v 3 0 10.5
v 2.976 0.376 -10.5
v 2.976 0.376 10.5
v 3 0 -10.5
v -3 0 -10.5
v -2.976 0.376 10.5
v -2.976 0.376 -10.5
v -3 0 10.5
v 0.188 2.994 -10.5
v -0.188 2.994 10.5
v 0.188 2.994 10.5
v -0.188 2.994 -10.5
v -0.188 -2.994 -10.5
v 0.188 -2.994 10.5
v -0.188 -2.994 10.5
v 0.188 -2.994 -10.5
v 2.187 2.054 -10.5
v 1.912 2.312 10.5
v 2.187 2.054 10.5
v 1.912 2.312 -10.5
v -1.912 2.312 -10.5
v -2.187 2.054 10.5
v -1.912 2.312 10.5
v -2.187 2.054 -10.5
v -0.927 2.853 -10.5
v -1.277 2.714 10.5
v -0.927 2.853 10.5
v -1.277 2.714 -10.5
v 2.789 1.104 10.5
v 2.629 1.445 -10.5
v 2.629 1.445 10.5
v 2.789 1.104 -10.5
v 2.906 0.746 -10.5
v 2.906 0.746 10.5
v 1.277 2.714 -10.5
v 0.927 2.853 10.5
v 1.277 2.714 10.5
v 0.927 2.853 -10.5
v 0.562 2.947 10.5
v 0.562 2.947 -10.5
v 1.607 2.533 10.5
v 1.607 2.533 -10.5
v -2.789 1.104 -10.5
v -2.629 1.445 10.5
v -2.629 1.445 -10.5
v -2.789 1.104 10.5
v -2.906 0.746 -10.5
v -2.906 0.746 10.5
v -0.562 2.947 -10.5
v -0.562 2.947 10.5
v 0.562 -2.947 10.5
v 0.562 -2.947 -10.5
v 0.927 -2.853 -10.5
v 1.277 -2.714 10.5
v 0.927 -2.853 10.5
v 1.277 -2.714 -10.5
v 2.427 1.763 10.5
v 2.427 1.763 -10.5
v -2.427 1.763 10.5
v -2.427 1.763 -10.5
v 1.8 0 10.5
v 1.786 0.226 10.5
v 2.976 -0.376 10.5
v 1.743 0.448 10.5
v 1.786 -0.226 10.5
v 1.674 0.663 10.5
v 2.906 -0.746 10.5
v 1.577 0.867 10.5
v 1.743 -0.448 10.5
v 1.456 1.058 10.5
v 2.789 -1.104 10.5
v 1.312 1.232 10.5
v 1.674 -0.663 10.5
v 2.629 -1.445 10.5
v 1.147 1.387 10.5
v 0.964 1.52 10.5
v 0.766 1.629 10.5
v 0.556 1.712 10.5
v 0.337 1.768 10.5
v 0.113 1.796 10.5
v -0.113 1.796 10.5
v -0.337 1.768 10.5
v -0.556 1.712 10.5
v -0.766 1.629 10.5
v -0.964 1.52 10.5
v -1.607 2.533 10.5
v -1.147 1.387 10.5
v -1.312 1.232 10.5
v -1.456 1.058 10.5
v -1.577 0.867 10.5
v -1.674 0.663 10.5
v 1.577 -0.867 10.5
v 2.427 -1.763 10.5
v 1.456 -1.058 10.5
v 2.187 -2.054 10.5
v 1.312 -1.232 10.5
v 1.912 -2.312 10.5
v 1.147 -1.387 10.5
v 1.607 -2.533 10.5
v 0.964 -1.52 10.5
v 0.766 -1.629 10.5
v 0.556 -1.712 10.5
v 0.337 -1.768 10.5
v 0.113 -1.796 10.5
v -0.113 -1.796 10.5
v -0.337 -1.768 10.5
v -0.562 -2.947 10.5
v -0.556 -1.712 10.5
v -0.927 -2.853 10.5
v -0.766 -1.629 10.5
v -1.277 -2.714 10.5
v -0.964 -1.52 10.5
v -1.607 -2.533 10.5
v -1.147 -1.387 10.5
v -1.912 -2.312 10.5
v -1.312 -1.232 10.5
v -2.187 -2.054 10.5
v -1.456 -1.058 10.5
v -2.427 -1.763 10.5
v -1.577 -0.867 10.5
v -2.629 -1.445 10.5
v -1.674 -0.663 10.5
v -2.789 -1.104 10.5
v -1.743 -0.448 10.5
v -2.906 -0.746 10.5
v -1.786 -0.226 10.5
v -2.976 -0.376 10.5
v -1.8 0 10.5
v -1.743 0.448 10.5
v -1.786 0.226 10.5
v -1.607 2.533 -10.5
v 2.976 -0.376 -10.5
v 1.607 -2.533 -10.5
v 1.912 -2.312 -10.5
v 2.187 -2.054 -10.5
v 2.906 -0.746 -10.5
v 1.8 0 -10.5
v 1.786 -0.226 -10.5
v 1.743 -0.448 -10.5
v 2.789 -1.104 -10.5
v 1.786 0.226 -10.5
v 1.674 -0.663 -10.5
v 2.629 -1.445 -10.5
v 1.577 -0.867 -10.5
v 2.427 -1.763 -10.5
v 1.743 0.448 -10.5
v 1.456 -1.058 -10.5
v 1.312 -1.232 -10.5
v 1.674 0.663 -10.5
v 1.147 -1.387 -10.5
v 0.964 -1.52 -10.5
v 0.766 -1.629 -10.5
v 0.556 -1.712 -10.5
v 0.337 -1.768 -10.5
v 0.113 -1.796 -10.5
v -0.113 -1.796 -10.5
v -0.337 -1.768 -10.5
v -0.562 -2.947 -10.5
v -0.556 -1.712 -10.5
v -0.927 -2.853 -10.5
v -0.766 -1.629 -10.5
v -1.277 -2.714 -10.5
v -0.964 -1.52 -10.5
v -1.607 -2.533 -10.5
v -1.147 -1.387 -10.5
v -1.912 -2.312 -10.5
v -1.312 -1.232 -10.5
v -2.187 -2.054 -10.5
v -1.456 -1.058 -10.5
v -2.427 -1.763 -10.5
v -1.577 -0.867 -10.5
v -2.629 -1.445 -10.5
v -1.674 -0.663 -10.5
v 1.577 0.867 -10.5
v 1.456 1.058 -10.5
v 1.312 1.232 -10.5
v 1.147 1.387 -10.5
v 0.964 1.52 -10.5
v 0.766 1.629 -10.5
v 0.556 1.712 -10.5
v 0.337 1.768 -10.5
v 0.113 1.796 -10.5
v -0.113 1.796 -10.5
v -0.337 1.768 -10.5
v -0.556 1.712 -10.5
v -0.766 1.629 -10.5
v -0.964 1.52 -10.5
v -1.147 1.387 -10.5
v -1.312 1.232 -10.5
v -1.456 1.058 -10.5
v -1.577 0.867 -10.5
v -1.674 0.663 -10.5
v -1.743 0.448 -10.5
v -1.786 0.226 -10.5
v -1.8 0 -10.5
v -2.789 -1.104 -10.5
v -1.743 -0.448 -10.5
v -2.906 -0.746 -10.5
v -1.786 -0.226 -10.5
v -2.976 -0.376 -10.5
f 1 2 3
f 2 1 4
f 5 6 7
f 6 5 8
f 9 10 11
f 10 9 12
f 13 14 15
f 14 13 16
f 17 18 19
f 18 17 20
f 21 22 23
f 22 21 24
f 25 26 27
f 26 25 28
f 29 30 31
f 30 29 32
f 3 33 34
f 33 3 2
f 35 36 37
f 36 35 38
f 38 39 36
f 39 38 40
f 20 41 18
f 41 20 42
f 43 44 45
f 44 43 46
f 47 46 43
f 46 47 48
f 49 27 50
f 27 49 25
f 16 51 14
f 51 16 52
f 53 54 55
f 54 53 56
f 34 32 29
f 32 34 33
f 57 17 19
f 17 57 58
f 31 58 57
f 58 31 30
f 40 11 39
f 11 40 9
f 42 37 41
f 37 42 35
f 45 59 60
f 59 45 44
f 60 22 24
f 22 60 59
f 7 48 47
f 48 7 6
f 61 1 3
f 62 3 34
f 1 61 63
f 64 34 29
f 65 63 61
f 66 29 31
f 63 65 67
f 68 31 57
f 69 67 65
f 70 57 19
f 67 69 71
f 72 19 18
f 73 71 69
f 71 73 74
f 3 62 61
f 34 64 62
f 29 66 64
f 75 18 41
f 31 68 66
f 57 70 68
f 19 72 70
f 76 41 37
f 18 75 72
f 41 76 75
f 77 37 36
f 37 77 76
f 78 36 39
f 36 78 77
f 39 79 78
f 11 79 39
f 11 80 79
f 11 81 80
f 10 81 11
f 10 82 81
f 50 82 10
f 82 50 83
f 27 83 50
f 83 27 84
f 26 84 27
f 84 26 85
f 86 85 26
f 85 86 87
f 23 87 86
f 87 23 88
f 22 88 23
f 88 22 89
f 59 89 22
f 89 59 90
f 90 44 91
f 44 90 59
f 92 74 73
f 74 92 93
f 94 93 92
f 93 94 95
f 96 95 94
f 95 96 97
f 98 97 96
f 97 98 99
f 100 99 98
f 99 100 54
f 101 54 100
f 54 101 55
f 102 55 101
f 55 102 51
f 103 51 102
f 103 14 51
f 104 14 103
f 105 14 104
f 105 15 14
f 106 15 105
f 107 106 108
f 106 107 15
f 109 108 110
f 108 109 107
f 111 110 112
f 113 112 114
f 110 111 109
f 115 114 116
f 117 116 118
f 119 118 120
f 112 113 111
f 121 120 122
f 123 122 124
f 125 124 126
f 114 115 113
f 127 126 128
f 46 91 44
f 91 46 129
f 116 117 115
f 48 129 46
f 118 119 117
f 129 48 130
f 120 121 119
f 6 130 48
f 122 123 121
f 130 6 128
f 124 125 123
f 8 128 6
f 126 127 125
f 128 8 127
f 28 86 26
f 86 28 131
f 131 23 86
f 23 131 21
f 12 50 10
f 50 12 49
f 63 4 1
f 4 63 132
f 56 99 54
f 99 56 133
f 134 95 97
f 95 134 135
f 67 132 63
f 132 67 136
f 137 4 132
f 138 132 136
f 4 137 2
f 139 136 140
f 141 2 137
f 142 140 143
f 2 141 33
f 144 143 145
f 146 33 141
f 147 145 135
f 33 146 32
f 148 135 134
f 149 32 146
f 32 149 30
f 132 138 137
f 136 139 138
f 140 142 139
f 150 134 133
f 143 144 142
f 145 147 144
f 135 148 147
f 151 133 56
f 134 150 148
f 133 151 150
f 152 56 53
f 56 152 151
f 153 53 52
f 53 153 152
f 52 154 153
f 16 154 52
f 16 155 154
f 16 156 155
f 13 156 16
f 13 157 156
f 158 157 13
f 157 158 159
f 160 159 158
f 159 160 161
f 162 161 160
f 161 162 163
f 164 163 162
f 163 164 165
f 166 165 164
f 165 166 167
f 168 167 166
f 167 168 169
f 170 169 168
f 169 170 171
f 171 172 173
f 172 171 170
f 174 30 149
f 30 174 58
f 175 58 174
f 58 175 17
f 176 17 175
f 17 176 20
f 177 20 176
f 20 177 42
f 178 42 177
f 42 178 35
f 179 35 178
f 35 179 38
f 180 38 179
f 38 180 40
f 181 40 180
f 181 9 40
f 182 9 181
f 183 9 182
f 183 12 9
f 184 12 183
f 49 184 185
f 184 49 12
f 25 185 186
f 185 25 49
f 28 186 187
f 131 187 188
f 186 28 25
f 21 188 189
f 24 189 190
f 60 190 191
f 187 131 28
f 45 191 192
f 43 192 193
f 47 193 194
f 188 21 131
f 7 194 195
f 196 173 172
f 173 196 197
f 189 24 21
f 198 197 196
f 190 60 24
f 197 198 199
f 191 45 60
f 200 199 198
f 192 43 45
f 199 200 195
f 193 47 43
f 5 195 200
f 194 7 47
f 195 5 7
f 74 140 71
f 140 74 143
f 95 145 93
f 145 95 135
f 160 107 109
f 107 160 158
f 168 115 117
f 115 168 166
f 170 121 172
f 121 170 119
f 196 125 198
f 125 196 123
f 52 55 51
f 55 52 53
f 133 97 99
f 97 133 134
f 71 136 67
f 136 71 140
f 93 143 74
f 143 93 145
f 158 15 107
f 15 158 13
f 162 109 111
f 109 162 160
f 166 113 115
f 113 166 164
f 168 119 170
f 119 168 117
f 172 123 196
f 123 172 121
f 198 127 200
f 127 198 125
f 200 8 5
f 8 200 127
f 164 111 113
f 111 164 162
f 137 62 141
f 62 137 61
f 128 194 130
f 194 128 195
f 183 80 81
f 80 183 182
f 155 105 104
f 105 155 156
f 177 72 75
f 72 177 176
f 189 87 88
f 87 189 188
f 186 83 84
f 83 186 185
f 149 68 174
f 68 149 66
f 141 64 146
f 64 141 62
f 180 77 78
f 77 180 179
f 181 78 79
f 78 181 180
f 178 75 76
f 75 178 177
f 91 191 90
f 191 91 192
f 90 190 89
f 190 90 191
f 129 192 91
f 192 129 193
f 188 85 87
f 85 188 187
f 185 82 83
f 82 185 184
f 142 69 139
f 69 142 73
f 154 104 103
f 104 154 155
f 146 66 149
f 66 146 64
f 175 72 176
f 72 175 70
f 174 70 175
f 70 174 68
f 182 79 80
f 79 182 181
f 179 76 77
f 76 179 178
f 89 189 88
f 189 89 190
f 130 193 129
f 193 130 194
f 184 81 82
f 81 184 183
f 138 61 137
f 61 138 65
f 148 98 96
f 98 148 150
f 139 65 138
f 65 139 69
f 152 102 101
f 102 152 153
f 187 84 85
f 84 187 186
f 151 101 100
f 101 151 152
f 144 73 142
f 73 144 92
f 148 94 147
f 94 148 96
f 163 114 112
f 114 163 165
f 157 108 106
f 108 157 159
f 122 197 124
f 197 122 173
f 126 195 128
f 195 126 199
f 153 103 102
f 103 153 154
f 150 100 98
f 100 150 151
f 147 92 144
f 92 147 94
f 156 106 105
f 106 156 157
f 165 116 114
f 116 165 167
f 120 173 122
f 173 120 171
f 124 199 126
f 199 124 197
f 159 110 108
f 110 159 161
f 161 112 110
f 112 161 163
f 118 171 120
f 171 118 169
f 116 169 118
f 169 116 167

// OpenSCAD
$fn = 50;


difference() {
	union() {
		translate(v = [0, 0, -10.5000000000]) {
			cylinder(h = 21, r = 3.0000000000);
		}
	}
	union() {
		translate(v = [0, 0, -100.0000000000]) {
			cylinder(h = 200, r = 1.8000000000);
		}
	}
}
